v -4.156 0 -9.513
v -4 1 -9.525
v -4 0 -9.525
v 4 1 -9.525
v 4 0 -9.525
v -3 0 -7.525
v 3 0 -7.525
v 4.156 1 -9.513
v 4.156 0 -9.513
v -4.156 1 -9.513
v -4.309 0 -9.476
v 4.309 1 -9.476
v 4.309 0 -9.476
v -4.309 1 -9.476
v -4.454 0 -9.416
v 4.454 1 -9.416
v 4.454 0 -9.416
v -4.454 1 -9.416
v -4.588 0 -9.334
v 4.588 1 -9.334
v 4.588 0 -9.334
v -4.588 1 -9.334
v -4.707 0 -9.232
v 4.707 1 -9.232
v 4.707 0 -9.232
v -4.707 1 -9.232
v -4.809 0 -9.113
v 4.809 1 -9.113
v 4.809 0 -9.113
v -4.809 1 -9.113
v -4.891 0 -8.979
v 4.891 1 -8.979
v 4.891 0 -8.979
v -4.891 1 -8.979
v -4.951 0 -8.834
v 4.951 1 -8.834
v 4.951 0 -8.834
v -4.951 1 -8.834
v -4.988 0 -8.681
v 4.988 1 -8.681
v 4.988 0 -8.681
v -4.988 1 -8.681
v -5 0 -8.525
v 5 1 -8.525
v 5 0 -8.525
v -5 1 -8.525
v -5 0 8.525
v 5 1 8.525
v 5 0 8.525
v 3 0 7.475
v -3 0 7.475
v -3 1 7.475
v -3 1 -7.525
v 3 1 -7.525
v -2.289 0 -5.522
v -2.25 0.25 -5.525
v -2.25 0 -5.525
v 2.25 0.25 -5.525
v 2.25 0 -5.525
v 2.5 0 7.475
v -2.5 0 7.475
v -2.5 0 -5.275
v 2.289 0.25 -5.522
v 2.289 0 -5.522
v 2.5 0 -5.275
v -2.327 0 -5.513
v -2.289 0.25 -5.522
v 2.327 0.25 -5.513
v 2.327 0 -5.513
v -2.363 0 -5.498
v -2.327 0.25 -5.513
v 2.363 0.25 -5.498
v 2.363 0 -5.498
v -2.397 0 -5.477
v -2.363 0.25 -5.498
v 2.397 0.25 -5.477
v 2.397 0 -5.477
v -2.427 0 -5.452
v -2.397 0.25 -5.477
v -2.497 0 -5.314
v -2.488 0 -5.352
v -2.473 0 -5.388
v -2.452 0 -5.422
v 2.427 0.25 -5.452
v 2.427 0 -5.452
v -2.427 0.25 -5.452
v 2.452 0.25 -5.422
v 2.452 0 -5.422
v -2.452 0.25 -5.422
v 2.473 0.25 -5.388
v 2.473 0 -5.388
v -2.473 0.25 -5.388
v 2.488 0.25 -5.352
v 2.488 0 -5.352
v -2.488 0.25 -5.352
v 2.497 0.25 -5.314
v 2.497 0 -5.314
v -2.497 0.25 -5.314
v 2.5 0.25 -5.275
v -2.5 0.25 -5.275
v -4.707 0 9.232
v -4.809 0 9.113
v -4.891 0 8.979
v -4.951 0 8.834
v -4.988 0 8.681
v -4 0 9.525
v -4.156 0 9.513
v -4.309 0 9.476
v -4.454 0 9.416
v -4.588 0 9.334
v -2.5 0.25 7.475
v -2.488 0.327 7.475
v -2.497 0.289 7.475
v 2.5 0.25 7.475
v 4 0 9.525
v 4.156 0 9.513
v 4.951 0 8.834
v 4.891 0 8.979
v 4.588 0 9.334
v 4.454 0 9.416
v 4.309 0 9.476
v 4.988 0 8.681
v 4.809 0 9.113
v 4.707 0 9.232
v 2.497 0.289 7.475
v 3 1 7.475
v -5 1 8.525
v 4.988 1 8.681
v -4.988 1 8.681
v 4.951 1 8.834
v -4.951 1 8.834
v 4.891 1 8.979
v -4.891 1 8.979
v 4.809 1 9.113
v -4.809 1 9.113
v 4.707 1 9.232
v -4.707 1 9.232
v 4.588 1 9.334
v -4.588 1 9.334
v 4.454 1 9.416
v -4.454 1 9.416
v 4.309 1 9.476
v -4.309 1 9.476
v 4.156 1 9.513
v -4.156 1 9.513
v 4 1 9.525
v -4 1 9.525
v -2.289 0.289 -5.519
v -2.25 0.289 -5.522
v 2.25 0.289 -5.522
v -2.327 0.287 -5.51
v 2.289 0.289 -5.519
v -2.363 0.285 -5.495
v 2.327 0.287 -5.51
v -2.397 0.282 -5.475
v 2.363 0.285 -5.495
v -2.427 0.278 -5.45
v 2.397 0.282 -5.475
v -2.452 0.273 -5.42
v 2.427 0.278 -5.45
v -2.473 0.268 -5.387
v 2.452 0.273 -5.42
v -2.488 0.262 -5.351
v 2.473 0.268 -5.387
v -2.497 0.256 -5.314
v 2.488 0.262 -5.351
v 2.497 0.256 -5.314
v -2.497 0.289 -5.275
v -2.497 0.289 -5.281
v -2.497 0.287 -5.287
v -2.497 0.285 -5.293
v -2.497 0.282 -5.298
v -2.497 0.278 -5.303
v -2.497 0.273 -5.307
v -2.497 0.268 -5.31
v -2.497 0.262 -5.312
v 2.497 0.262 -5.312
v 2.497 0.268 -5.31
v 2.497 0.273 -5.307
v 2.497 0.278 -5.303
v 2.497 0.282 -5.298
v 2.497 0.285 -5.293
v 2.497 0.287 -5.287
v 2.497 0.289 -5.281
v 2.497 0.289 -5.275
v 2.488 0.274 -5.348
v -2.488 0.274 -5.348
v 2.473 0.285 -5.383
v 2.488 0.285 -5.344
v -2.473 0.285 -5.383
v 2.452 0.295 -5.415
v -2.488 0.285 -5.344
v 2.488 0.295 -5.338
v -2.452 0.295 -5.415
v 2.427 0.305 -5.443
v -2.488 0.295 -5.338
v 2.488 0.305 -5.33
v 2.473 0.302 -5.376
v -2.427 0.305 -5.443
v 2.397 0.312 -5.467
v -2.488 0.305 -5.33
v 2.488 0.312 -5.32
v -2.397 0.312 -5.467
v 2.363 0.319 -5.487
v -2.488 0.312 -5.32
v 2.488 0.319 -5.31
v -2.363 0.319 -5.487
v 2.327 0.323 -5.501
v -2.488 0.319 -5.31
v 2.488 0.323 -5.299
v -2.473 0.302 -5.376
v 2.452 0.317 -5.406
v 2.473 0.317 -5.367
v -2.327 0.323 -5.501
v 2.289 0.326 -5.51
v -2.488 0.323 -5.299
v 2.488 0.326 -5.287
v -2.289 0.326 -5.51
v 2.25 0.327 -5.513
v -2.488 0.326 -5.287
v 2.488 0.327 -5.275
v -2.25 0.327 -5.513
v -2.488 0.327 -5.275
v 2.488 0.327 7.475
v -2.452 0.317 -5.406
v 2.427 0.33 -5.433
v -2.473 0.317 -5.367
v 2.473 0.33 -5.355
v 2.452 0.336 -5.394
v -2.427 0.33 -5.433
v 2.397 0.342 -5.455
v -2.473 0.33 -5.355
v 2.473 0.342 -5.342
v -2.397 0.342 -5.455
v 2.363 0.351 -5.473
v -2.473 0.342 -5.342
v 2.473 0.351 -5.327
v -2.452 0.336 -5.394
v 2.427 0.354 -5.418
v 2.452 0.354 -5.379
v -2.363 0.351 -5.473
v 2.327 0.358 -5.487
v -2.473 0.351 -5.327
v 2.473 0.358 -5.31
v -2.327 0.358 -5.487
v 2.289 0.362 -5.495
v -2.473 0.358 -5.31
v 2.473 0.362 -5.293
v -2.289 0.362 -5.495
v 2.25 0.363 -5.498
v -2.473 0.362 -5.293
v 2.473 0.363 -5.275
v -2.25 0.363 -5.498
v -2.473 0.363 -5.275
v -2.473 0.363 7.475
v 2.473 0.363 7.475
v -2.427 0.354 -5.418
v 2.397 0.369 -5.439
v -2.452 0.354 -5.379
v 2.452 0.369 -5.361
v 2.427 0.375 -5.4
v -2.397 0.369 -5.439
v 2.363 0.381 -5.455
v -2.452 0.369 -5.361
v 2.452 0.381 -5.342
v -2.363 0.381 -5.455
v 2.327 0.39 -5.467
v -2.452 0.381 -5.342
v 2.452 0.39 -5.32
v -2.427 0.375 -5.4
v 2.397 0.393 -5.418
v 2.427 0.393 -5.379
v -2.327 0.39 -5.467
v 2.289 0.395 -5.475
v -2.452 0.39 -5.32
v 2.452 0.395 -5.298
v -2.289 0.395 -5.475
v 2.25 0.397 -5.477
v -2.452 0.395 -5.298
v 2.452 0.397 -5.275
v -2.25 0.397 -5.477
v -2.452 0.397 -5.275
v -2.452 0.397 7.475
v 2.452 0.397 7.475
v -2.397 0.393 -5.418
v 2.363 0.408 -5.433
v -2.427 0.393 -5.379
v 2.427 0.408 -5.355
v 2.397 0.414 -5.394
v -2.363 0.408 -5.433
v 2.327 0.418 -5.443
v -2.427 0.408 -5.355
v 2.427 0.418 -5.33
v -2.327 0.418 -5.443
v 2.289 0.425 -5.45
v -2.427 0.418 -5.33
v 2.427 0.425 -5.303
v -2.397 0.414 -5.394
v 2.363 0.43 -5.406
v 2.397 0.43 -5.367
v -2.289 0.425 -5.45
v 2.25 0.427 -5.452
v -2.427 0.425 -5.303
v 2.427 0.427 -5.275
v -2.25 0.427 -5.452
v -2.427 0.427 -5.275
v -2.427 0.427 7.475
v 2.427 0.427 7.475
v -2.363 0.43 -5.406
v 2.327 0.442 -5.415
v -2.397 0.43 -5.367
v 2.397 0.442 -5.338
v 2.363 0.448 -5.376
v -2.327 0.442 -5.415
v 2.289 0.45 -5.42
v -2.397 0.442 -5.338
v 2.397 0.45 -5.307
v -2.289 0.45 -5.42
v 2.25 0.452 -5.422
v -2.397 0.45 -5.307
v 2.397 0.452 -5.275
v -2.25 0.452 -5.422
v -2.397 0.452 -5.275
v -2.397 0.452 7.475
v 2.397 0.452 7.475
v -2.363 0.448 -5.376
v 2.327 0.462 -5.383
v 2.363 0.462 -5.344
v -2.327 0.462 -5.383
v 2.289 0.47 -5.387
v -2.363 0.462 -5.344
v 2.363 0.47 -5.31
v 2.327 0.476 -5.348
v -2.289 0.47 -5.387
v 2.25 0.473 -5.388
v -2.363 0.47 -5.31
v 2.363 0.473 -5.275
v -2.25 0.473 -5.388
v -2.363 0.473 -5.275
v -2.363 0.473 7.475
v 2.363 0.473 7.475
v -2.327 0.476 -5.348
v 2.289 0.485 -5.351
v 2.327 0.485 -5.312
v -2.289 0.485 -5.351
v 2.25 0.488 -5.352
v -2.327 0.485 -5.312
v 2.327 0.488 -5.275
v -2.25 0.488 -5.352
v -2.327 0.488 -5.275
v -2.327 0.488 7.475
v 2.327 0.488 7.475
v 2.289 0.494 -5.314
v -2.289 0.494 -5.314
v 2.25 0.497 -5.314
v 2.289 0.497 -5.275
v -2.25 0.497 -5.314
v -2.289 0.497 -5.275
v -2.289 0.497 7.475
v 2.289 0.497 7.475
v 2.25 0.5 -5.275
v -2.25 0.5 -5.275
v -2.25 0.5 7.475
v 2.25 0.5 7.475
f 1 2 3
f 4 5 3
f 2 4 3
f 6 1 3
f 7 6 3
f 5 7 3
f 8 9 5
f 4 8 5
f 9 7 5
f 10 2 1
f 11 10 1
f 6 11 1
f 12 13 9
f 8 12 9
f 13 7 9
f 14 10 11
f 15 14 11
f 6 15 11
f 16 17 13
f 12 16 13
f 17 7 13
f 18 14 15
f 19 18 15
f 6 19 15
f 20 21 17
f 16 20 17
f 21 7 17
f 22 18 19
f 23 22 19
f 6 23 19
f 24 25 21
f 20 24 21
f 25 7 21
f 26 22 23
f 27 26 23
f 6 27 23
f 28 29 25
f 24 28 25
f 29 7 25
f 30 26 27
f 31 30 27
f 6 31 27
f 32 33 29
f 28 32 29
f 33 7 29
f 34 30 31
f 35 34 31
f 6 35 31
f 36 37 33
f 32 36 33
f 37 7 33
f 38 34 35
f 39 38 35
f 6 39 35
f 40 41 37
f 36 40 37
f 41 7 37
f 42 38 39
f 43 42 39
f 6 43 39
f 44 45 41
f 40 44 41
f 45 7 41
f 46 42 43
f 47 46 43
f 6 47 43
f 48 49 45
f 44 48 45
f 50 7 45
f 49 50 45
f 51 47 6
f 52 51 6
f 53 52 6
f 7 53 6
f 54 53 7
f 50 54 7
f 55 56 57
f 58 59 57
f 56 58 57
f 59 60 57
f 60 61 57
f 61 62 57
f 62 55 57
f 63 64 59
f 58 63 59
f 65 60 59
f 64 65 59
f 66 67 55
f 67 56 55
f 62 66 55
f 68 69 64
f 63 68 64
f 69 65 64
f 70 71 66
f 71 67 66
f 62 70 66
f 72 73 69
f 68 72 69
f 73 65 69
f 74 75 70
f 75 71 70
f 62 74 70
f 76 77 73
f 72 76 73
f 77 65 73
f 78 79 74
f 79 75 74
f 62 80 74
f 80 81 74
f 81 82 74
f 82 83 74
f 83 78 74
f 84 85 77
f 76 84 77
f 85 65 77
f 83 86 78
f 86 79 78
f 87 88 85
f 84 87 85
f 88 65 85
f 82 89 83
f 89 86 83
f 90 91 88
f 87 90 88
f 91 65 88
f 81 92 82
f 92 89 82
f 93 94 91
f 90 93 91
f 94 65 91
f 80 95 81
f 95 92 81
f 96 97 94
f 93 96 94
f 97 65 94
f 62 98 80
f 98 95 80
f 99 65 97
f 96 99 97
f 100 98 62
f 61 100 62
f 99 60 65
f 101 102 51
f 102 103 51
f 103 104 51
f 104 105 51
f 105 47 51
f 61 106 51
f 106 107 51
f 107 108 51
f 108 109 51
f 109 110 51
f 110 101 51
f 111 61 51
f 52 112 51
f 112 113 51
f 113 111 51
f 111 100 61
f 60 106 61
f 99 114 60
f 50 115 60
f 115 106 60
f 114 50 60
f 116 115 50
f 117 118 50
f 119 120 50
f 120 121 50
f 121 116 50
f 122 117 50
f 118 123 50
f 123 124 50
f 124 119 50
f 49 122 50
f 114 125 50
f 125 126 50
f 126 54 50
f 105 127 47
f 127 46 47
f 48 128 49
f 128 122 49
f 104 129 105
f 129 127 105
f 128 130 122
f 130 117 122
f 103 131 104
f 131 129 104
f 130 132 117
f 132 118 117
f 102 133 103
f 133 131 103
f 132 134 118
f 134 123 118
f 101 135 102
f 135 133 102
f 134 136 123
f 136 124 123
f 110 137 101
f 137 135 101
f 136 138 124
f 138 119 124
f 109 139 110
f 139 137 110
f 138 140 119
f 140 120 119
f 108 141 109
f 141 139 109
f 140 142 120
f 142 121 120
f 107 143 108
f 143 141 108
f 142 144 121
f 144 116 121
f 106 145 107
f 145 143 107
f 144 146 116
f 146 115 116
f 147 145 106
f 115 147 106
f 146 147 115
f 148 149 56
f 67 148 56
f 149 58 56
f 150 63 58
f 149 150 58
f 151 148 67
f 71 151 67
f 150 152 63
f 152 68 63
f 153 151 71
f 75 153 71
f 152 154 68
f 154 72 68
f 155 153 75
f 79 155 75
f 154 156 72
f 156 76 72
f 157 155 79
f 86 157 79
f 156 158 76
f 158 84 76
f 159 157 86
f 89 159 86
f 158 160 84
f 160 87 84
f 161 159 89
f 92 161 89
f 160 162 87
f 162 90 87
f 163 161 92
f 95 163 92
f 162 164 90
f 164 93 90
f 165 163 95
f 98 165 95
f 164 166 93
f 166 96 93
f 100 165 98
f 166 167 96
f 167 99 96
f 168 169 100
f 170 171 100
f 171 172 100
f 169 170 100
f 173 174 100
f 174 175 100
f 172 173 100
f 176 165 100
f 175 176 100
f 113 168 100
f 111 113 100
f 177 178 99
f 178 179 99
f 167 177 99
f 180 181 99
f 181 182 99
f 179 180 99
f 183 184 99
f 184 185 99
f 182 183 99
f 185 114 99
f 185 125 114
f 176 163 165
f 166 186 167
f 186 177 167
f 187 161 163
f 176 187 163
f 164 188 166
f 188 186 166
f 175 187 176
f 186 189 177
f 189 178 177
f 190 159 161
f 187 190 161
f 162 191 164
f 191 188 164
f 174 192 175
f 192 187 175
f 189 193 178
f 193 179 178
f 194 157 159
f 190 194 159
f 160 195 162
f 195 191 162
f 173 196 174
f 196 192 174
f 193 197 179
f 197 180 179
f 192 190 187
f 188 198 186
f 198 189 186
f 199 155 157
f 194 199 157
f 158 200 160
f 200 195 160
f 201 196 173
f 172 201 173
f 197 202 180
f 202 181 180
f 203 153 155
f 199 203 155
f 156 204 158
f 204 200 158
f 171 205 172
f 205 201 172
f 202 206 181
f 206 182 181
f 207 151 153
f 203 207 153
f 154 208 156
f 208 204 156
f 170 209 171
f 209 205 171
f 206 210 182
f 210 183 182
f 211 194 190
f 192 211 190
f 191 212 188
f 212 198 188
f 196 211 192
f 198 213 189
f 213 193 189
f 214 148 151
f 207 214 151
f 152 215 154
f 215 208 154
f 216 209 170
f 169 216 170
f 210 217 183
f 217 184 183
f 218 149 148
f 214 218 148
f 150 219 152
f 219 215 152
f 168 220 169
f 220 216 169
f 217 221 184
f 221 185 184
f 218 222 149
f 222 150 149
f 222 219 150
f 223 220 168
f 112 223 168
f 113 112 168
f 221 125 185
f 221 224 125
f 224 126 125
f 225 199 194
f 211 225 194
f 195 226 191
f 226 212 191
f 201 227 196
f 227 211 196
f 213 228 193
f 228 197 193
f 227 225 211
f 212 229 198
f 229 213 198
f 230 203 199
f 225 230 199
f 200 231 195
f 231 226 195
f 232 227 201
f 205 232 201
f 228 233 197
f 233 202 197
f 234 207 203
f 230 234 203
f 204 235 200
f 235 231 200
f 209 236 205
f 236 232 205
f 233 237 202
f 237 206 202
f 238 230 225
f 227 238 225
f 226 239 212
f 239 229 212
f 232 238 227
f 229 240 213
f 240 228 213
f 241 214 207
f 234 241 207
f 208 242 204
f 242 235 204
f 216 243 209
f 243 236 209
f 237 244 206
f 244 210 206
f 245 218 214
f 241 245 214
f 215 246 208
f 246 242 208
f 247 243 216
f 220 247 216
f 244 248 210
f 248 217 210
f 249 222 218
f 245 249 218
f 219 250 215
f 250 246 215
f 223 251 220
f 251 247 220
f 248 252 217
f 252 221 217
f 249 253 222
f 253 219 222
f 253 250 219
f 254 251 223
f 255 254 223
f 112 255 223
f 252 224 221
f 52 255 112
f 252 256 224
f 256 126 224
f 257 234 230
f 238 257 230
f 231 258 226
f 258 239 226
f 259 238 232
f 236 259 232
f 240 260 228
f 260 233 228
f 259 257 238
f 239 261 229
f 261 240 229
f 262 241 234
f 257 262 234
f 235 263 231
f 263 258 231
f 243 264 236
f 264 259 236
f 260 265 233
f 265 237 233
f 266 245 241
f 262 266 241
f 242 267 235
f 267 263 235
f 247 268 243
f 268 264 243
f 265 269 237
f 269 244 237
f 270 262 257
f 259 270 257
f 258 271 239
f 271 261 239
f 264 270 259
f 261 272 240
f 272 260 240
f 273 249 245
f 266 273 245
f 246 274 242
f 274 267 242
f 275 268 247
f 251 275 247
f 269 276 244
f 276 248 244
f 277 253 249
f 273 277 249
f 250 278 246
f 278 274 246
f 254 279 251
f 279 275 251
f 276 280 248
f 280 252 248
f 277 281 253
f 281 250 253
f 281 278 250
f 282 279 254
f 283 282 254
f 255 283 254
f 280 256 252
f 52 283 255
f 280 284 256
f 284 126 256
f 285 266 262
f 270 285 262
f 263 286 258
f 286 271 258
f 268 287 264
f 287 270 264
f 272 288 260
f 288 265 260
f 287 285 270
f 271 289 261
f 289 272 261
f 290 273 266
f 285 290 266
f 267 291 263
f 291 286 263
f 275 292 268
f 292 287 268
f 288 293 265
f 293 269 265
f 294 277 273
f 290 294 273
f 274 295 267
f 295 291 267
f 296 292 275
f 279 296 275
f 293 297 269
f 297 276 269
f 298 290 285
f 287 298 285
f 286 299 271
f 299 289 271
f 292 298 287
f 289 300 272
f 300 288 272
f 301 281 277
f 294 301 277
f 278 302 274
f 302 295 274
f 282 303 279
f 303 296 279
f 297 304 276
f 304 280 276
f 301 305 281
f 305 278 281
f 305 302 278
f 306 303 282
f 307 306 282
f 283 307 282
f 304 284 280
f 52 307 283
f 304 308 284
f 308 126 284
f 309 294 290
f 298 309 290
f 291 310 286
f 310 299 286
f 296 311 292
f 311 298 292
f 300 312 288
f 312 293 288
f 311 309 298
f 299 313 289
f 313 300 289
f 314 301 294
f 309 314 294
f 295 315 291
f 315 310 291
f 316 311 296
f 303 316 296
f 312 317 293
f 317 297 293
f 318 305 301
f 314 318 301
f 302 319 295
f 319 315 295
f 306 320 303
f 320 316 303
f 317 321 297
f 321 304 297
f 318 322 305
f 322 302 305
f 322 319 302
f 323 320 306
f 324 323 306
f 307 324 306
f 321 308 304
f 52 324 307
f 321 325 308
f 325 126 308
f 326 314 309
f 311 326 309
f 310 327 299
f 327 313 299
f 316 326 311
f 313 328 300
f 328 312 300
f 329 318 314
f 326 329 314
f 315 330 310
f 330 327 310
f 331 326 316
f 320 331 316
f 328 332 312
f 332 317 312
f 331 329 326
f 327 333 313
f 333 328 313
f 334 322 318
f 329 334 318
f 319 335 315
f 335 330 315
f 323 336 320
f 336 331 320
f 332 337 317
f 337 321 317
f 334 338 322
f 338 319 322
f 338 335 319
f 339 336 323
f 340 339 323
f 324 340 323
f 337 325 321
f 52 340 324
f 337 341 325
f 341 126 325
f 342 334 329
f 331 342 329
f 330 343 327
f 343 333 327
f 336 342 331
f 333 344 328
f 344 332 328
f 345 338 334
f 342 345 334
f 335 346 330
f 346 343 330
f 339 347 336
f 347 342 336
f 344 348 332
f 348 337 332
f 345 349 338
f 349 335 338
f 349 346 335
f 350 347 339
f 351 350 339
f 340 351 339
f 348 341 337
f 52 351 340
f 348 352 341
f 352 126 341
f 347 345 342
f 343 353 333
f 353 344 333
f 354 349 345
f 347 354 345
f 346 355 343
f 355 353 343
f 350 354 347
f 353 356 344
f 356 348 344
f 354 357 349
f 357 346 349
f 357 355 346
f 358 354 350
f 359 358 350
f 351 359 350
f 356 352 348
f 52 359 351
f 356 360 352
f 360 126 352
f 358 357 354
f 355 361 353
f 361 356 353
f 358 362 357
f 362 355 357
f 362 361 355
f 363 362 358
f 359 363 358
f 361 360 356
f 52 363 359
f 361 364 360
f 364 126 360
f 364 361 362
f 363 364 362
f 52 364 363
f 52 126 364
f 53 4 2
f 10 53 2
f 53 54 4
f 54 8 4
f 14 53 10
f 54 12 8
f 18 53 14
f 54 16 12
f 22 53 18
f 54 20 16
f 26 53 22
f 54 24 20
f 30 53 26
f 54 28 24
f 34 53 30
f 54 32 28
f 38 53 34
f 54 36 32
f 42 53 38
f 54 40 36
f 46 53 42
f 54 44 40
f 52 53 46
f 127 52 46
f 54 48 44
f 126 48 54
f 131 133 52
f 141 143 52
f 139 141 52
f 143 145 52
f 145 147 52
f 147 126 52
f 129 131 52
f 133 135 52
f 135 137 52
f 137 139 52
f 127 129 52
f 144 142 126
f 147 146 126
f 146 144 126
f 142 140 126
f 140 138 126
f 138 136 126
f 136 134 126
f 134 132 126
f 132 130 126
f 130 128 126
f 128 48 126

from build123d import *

# Parameters (mm, degrees)
SKETCH1_W               = 10
SKETCH1_H               = 19.05
BOSS_EXTRUDE1_DEPTH     = 1
SKETCH2_W               = 0.5
SKETCH2_H               = 15
CUT_EXTRUDE1_DEPTH      = 1
CUT_EXTRUDE1_DEPTH_BACK = 2
SKETCH3_W               = 0.5
SKETCH3_H               = 15
CUT_EXTRUDE2_DEPTH      = 2
SKETCH4_W               = 5
SKETCH4_H               = 2
CUT_EXTRUDE3_DEPTH      = 2
SKETCH5_W               = 5
SKETCH5_H               = 13
CUT_EXTRUDE4_DEPTH      = 0.5
FILLET9_R               = 0.25
FILLET10_R              = 0.25
FILLET11_R              = 0.25
FILLET13_R              = 1
FILLET14_R              = 1
FILLET15_R              = 1
FILLET16_R              = 1


with BuildPart() as part:
    # Sketch1 → Boss-Extrude1 (new body)
    with BuildSketch(Plane(origin=(0, 0, 0), x_dir=(1, 0, 0), z_dir=(0, 1, 0))):
        Rectangle(SKETCH1_W, SKETCH1_H)
    extrude(amount=BOSS_EXTRUDE1_DEPTH)

    # Sketch2 → Cut-Extrude1 (cut, two sides)
    with BuildSketch(Plane(origin=(0, 1, 0), x_dir=(1, 0, 0), z_dir=(0, 1, 0))) as cut_extrude1_sk:
        with Locations((-2.75, 0.025)):
            Rectangle(SKETCH2_W, SKETCH2_H)
    extrude(amount=CUT_EXTRUDE1_DEPTH, mode=Mode.SUBTRACT)
    extrude(cut_extrude1_sk.sketch, amount=-CUT_EXTRUDE1_DEPTH_BACK, mode=Mode.SUBTRACT)

    # Sketch3 → Cut-Extrude2 (cut, through all)
    with BuildSketch(Plane(origin=(0, 1, 0), x_dir=(1, 0, 0), z_dir=(0, 1, 0))):
        with Locations((2.75, 0.025)):
            Rectangle(SKETCH3_W, SKETCH3_H)
    extrude(amount=-CUT_EXTRUDE2_DEPTH, mode=Mode.SUBTRACT)

    # Sketch4 → Cut-Extrude3 (cut, through all)
    with BuildSketch(Plane(origin=(0, 1, 0), x_dir=(1, 0, 0), z_dir=(0, 1, 0))):
        with Locations((0, 6.525)):
            Rectangle(SKETCH4_W, SKETCH4_H)
    extrude(amount=-CUT_EXTRUDE3_DEPTH, mode=Mode.SUBTRACT)

    # Sketch5 → Cut-Extrude4 (cut)
    with BuildSketch(Plane(origin=(0, 1, 0), x_dir=(1, 0, 0), z_dir=(0, 1, 0))):
        with Locations((0, -0.975)):
            Rectangle(SKETCH5_W, SKETCH5_H)
    extrude(amount=-CUT_EXTRUDE4_DEPTH, mode=Mode.SUBTRACT)

    # Fillet9
    fillet9_edges = [part.edges().sort_by_distance(p)[0] for p in [
        (0, 0.5, -5.525),
    ]]
    fillet(fillet9_edges, radius=FILLET9_R)

    # Fillet10
    fillet10_edges = [part.edges().sort_by_distance(p)[0] for p in [
        (-2.5, 0.125, -5.525),
        (-2.5, 0.5, 1.1),
    ]]
    fillet(fillet10_edges, radius=FILLET10_R)

    # Fillet11
    fillet11_edges = [part.edges().sort_by_distance(p)[0] for p in [
        (2.5, 0.125, -5.525),
        (2.5, 0.5, 1.1),
    ]]
    fillet(fillet11_edges, radius=FILLET11_R)

    # Fillet13
    fillet13_edges = [part.edges().sort_by_distance(p)[0] for p in [
        (-5, 0.5, -9.525),
    ]]
    fillet(fillet13_edges, radius=FILLET13_R)

    # Fillet14
    fillet14_edges = [part.edges().sort_by_distance(p)[0] for p in [
        (5, 0.5, -9.525),
    ]]
    fillet(fillet14_edges, radius=FILLET14_R)

    # Fillet15
    fillet15_edges = [part.edges().sort_by_distance(p)[0] for p in [
        (5, 0.5, 9.525),
    ]]
    fillet(fillet15_edges, radius=FILLET15_R)

    # Fillet16
    fillet16_edges = [part.edges().sort_by_distance(p)[0] for p in [
        (-5, 0.5, 9.525),
    ]]
    fillet(fillet16_edges, radius=FILLET16_R)


solid = part.part
